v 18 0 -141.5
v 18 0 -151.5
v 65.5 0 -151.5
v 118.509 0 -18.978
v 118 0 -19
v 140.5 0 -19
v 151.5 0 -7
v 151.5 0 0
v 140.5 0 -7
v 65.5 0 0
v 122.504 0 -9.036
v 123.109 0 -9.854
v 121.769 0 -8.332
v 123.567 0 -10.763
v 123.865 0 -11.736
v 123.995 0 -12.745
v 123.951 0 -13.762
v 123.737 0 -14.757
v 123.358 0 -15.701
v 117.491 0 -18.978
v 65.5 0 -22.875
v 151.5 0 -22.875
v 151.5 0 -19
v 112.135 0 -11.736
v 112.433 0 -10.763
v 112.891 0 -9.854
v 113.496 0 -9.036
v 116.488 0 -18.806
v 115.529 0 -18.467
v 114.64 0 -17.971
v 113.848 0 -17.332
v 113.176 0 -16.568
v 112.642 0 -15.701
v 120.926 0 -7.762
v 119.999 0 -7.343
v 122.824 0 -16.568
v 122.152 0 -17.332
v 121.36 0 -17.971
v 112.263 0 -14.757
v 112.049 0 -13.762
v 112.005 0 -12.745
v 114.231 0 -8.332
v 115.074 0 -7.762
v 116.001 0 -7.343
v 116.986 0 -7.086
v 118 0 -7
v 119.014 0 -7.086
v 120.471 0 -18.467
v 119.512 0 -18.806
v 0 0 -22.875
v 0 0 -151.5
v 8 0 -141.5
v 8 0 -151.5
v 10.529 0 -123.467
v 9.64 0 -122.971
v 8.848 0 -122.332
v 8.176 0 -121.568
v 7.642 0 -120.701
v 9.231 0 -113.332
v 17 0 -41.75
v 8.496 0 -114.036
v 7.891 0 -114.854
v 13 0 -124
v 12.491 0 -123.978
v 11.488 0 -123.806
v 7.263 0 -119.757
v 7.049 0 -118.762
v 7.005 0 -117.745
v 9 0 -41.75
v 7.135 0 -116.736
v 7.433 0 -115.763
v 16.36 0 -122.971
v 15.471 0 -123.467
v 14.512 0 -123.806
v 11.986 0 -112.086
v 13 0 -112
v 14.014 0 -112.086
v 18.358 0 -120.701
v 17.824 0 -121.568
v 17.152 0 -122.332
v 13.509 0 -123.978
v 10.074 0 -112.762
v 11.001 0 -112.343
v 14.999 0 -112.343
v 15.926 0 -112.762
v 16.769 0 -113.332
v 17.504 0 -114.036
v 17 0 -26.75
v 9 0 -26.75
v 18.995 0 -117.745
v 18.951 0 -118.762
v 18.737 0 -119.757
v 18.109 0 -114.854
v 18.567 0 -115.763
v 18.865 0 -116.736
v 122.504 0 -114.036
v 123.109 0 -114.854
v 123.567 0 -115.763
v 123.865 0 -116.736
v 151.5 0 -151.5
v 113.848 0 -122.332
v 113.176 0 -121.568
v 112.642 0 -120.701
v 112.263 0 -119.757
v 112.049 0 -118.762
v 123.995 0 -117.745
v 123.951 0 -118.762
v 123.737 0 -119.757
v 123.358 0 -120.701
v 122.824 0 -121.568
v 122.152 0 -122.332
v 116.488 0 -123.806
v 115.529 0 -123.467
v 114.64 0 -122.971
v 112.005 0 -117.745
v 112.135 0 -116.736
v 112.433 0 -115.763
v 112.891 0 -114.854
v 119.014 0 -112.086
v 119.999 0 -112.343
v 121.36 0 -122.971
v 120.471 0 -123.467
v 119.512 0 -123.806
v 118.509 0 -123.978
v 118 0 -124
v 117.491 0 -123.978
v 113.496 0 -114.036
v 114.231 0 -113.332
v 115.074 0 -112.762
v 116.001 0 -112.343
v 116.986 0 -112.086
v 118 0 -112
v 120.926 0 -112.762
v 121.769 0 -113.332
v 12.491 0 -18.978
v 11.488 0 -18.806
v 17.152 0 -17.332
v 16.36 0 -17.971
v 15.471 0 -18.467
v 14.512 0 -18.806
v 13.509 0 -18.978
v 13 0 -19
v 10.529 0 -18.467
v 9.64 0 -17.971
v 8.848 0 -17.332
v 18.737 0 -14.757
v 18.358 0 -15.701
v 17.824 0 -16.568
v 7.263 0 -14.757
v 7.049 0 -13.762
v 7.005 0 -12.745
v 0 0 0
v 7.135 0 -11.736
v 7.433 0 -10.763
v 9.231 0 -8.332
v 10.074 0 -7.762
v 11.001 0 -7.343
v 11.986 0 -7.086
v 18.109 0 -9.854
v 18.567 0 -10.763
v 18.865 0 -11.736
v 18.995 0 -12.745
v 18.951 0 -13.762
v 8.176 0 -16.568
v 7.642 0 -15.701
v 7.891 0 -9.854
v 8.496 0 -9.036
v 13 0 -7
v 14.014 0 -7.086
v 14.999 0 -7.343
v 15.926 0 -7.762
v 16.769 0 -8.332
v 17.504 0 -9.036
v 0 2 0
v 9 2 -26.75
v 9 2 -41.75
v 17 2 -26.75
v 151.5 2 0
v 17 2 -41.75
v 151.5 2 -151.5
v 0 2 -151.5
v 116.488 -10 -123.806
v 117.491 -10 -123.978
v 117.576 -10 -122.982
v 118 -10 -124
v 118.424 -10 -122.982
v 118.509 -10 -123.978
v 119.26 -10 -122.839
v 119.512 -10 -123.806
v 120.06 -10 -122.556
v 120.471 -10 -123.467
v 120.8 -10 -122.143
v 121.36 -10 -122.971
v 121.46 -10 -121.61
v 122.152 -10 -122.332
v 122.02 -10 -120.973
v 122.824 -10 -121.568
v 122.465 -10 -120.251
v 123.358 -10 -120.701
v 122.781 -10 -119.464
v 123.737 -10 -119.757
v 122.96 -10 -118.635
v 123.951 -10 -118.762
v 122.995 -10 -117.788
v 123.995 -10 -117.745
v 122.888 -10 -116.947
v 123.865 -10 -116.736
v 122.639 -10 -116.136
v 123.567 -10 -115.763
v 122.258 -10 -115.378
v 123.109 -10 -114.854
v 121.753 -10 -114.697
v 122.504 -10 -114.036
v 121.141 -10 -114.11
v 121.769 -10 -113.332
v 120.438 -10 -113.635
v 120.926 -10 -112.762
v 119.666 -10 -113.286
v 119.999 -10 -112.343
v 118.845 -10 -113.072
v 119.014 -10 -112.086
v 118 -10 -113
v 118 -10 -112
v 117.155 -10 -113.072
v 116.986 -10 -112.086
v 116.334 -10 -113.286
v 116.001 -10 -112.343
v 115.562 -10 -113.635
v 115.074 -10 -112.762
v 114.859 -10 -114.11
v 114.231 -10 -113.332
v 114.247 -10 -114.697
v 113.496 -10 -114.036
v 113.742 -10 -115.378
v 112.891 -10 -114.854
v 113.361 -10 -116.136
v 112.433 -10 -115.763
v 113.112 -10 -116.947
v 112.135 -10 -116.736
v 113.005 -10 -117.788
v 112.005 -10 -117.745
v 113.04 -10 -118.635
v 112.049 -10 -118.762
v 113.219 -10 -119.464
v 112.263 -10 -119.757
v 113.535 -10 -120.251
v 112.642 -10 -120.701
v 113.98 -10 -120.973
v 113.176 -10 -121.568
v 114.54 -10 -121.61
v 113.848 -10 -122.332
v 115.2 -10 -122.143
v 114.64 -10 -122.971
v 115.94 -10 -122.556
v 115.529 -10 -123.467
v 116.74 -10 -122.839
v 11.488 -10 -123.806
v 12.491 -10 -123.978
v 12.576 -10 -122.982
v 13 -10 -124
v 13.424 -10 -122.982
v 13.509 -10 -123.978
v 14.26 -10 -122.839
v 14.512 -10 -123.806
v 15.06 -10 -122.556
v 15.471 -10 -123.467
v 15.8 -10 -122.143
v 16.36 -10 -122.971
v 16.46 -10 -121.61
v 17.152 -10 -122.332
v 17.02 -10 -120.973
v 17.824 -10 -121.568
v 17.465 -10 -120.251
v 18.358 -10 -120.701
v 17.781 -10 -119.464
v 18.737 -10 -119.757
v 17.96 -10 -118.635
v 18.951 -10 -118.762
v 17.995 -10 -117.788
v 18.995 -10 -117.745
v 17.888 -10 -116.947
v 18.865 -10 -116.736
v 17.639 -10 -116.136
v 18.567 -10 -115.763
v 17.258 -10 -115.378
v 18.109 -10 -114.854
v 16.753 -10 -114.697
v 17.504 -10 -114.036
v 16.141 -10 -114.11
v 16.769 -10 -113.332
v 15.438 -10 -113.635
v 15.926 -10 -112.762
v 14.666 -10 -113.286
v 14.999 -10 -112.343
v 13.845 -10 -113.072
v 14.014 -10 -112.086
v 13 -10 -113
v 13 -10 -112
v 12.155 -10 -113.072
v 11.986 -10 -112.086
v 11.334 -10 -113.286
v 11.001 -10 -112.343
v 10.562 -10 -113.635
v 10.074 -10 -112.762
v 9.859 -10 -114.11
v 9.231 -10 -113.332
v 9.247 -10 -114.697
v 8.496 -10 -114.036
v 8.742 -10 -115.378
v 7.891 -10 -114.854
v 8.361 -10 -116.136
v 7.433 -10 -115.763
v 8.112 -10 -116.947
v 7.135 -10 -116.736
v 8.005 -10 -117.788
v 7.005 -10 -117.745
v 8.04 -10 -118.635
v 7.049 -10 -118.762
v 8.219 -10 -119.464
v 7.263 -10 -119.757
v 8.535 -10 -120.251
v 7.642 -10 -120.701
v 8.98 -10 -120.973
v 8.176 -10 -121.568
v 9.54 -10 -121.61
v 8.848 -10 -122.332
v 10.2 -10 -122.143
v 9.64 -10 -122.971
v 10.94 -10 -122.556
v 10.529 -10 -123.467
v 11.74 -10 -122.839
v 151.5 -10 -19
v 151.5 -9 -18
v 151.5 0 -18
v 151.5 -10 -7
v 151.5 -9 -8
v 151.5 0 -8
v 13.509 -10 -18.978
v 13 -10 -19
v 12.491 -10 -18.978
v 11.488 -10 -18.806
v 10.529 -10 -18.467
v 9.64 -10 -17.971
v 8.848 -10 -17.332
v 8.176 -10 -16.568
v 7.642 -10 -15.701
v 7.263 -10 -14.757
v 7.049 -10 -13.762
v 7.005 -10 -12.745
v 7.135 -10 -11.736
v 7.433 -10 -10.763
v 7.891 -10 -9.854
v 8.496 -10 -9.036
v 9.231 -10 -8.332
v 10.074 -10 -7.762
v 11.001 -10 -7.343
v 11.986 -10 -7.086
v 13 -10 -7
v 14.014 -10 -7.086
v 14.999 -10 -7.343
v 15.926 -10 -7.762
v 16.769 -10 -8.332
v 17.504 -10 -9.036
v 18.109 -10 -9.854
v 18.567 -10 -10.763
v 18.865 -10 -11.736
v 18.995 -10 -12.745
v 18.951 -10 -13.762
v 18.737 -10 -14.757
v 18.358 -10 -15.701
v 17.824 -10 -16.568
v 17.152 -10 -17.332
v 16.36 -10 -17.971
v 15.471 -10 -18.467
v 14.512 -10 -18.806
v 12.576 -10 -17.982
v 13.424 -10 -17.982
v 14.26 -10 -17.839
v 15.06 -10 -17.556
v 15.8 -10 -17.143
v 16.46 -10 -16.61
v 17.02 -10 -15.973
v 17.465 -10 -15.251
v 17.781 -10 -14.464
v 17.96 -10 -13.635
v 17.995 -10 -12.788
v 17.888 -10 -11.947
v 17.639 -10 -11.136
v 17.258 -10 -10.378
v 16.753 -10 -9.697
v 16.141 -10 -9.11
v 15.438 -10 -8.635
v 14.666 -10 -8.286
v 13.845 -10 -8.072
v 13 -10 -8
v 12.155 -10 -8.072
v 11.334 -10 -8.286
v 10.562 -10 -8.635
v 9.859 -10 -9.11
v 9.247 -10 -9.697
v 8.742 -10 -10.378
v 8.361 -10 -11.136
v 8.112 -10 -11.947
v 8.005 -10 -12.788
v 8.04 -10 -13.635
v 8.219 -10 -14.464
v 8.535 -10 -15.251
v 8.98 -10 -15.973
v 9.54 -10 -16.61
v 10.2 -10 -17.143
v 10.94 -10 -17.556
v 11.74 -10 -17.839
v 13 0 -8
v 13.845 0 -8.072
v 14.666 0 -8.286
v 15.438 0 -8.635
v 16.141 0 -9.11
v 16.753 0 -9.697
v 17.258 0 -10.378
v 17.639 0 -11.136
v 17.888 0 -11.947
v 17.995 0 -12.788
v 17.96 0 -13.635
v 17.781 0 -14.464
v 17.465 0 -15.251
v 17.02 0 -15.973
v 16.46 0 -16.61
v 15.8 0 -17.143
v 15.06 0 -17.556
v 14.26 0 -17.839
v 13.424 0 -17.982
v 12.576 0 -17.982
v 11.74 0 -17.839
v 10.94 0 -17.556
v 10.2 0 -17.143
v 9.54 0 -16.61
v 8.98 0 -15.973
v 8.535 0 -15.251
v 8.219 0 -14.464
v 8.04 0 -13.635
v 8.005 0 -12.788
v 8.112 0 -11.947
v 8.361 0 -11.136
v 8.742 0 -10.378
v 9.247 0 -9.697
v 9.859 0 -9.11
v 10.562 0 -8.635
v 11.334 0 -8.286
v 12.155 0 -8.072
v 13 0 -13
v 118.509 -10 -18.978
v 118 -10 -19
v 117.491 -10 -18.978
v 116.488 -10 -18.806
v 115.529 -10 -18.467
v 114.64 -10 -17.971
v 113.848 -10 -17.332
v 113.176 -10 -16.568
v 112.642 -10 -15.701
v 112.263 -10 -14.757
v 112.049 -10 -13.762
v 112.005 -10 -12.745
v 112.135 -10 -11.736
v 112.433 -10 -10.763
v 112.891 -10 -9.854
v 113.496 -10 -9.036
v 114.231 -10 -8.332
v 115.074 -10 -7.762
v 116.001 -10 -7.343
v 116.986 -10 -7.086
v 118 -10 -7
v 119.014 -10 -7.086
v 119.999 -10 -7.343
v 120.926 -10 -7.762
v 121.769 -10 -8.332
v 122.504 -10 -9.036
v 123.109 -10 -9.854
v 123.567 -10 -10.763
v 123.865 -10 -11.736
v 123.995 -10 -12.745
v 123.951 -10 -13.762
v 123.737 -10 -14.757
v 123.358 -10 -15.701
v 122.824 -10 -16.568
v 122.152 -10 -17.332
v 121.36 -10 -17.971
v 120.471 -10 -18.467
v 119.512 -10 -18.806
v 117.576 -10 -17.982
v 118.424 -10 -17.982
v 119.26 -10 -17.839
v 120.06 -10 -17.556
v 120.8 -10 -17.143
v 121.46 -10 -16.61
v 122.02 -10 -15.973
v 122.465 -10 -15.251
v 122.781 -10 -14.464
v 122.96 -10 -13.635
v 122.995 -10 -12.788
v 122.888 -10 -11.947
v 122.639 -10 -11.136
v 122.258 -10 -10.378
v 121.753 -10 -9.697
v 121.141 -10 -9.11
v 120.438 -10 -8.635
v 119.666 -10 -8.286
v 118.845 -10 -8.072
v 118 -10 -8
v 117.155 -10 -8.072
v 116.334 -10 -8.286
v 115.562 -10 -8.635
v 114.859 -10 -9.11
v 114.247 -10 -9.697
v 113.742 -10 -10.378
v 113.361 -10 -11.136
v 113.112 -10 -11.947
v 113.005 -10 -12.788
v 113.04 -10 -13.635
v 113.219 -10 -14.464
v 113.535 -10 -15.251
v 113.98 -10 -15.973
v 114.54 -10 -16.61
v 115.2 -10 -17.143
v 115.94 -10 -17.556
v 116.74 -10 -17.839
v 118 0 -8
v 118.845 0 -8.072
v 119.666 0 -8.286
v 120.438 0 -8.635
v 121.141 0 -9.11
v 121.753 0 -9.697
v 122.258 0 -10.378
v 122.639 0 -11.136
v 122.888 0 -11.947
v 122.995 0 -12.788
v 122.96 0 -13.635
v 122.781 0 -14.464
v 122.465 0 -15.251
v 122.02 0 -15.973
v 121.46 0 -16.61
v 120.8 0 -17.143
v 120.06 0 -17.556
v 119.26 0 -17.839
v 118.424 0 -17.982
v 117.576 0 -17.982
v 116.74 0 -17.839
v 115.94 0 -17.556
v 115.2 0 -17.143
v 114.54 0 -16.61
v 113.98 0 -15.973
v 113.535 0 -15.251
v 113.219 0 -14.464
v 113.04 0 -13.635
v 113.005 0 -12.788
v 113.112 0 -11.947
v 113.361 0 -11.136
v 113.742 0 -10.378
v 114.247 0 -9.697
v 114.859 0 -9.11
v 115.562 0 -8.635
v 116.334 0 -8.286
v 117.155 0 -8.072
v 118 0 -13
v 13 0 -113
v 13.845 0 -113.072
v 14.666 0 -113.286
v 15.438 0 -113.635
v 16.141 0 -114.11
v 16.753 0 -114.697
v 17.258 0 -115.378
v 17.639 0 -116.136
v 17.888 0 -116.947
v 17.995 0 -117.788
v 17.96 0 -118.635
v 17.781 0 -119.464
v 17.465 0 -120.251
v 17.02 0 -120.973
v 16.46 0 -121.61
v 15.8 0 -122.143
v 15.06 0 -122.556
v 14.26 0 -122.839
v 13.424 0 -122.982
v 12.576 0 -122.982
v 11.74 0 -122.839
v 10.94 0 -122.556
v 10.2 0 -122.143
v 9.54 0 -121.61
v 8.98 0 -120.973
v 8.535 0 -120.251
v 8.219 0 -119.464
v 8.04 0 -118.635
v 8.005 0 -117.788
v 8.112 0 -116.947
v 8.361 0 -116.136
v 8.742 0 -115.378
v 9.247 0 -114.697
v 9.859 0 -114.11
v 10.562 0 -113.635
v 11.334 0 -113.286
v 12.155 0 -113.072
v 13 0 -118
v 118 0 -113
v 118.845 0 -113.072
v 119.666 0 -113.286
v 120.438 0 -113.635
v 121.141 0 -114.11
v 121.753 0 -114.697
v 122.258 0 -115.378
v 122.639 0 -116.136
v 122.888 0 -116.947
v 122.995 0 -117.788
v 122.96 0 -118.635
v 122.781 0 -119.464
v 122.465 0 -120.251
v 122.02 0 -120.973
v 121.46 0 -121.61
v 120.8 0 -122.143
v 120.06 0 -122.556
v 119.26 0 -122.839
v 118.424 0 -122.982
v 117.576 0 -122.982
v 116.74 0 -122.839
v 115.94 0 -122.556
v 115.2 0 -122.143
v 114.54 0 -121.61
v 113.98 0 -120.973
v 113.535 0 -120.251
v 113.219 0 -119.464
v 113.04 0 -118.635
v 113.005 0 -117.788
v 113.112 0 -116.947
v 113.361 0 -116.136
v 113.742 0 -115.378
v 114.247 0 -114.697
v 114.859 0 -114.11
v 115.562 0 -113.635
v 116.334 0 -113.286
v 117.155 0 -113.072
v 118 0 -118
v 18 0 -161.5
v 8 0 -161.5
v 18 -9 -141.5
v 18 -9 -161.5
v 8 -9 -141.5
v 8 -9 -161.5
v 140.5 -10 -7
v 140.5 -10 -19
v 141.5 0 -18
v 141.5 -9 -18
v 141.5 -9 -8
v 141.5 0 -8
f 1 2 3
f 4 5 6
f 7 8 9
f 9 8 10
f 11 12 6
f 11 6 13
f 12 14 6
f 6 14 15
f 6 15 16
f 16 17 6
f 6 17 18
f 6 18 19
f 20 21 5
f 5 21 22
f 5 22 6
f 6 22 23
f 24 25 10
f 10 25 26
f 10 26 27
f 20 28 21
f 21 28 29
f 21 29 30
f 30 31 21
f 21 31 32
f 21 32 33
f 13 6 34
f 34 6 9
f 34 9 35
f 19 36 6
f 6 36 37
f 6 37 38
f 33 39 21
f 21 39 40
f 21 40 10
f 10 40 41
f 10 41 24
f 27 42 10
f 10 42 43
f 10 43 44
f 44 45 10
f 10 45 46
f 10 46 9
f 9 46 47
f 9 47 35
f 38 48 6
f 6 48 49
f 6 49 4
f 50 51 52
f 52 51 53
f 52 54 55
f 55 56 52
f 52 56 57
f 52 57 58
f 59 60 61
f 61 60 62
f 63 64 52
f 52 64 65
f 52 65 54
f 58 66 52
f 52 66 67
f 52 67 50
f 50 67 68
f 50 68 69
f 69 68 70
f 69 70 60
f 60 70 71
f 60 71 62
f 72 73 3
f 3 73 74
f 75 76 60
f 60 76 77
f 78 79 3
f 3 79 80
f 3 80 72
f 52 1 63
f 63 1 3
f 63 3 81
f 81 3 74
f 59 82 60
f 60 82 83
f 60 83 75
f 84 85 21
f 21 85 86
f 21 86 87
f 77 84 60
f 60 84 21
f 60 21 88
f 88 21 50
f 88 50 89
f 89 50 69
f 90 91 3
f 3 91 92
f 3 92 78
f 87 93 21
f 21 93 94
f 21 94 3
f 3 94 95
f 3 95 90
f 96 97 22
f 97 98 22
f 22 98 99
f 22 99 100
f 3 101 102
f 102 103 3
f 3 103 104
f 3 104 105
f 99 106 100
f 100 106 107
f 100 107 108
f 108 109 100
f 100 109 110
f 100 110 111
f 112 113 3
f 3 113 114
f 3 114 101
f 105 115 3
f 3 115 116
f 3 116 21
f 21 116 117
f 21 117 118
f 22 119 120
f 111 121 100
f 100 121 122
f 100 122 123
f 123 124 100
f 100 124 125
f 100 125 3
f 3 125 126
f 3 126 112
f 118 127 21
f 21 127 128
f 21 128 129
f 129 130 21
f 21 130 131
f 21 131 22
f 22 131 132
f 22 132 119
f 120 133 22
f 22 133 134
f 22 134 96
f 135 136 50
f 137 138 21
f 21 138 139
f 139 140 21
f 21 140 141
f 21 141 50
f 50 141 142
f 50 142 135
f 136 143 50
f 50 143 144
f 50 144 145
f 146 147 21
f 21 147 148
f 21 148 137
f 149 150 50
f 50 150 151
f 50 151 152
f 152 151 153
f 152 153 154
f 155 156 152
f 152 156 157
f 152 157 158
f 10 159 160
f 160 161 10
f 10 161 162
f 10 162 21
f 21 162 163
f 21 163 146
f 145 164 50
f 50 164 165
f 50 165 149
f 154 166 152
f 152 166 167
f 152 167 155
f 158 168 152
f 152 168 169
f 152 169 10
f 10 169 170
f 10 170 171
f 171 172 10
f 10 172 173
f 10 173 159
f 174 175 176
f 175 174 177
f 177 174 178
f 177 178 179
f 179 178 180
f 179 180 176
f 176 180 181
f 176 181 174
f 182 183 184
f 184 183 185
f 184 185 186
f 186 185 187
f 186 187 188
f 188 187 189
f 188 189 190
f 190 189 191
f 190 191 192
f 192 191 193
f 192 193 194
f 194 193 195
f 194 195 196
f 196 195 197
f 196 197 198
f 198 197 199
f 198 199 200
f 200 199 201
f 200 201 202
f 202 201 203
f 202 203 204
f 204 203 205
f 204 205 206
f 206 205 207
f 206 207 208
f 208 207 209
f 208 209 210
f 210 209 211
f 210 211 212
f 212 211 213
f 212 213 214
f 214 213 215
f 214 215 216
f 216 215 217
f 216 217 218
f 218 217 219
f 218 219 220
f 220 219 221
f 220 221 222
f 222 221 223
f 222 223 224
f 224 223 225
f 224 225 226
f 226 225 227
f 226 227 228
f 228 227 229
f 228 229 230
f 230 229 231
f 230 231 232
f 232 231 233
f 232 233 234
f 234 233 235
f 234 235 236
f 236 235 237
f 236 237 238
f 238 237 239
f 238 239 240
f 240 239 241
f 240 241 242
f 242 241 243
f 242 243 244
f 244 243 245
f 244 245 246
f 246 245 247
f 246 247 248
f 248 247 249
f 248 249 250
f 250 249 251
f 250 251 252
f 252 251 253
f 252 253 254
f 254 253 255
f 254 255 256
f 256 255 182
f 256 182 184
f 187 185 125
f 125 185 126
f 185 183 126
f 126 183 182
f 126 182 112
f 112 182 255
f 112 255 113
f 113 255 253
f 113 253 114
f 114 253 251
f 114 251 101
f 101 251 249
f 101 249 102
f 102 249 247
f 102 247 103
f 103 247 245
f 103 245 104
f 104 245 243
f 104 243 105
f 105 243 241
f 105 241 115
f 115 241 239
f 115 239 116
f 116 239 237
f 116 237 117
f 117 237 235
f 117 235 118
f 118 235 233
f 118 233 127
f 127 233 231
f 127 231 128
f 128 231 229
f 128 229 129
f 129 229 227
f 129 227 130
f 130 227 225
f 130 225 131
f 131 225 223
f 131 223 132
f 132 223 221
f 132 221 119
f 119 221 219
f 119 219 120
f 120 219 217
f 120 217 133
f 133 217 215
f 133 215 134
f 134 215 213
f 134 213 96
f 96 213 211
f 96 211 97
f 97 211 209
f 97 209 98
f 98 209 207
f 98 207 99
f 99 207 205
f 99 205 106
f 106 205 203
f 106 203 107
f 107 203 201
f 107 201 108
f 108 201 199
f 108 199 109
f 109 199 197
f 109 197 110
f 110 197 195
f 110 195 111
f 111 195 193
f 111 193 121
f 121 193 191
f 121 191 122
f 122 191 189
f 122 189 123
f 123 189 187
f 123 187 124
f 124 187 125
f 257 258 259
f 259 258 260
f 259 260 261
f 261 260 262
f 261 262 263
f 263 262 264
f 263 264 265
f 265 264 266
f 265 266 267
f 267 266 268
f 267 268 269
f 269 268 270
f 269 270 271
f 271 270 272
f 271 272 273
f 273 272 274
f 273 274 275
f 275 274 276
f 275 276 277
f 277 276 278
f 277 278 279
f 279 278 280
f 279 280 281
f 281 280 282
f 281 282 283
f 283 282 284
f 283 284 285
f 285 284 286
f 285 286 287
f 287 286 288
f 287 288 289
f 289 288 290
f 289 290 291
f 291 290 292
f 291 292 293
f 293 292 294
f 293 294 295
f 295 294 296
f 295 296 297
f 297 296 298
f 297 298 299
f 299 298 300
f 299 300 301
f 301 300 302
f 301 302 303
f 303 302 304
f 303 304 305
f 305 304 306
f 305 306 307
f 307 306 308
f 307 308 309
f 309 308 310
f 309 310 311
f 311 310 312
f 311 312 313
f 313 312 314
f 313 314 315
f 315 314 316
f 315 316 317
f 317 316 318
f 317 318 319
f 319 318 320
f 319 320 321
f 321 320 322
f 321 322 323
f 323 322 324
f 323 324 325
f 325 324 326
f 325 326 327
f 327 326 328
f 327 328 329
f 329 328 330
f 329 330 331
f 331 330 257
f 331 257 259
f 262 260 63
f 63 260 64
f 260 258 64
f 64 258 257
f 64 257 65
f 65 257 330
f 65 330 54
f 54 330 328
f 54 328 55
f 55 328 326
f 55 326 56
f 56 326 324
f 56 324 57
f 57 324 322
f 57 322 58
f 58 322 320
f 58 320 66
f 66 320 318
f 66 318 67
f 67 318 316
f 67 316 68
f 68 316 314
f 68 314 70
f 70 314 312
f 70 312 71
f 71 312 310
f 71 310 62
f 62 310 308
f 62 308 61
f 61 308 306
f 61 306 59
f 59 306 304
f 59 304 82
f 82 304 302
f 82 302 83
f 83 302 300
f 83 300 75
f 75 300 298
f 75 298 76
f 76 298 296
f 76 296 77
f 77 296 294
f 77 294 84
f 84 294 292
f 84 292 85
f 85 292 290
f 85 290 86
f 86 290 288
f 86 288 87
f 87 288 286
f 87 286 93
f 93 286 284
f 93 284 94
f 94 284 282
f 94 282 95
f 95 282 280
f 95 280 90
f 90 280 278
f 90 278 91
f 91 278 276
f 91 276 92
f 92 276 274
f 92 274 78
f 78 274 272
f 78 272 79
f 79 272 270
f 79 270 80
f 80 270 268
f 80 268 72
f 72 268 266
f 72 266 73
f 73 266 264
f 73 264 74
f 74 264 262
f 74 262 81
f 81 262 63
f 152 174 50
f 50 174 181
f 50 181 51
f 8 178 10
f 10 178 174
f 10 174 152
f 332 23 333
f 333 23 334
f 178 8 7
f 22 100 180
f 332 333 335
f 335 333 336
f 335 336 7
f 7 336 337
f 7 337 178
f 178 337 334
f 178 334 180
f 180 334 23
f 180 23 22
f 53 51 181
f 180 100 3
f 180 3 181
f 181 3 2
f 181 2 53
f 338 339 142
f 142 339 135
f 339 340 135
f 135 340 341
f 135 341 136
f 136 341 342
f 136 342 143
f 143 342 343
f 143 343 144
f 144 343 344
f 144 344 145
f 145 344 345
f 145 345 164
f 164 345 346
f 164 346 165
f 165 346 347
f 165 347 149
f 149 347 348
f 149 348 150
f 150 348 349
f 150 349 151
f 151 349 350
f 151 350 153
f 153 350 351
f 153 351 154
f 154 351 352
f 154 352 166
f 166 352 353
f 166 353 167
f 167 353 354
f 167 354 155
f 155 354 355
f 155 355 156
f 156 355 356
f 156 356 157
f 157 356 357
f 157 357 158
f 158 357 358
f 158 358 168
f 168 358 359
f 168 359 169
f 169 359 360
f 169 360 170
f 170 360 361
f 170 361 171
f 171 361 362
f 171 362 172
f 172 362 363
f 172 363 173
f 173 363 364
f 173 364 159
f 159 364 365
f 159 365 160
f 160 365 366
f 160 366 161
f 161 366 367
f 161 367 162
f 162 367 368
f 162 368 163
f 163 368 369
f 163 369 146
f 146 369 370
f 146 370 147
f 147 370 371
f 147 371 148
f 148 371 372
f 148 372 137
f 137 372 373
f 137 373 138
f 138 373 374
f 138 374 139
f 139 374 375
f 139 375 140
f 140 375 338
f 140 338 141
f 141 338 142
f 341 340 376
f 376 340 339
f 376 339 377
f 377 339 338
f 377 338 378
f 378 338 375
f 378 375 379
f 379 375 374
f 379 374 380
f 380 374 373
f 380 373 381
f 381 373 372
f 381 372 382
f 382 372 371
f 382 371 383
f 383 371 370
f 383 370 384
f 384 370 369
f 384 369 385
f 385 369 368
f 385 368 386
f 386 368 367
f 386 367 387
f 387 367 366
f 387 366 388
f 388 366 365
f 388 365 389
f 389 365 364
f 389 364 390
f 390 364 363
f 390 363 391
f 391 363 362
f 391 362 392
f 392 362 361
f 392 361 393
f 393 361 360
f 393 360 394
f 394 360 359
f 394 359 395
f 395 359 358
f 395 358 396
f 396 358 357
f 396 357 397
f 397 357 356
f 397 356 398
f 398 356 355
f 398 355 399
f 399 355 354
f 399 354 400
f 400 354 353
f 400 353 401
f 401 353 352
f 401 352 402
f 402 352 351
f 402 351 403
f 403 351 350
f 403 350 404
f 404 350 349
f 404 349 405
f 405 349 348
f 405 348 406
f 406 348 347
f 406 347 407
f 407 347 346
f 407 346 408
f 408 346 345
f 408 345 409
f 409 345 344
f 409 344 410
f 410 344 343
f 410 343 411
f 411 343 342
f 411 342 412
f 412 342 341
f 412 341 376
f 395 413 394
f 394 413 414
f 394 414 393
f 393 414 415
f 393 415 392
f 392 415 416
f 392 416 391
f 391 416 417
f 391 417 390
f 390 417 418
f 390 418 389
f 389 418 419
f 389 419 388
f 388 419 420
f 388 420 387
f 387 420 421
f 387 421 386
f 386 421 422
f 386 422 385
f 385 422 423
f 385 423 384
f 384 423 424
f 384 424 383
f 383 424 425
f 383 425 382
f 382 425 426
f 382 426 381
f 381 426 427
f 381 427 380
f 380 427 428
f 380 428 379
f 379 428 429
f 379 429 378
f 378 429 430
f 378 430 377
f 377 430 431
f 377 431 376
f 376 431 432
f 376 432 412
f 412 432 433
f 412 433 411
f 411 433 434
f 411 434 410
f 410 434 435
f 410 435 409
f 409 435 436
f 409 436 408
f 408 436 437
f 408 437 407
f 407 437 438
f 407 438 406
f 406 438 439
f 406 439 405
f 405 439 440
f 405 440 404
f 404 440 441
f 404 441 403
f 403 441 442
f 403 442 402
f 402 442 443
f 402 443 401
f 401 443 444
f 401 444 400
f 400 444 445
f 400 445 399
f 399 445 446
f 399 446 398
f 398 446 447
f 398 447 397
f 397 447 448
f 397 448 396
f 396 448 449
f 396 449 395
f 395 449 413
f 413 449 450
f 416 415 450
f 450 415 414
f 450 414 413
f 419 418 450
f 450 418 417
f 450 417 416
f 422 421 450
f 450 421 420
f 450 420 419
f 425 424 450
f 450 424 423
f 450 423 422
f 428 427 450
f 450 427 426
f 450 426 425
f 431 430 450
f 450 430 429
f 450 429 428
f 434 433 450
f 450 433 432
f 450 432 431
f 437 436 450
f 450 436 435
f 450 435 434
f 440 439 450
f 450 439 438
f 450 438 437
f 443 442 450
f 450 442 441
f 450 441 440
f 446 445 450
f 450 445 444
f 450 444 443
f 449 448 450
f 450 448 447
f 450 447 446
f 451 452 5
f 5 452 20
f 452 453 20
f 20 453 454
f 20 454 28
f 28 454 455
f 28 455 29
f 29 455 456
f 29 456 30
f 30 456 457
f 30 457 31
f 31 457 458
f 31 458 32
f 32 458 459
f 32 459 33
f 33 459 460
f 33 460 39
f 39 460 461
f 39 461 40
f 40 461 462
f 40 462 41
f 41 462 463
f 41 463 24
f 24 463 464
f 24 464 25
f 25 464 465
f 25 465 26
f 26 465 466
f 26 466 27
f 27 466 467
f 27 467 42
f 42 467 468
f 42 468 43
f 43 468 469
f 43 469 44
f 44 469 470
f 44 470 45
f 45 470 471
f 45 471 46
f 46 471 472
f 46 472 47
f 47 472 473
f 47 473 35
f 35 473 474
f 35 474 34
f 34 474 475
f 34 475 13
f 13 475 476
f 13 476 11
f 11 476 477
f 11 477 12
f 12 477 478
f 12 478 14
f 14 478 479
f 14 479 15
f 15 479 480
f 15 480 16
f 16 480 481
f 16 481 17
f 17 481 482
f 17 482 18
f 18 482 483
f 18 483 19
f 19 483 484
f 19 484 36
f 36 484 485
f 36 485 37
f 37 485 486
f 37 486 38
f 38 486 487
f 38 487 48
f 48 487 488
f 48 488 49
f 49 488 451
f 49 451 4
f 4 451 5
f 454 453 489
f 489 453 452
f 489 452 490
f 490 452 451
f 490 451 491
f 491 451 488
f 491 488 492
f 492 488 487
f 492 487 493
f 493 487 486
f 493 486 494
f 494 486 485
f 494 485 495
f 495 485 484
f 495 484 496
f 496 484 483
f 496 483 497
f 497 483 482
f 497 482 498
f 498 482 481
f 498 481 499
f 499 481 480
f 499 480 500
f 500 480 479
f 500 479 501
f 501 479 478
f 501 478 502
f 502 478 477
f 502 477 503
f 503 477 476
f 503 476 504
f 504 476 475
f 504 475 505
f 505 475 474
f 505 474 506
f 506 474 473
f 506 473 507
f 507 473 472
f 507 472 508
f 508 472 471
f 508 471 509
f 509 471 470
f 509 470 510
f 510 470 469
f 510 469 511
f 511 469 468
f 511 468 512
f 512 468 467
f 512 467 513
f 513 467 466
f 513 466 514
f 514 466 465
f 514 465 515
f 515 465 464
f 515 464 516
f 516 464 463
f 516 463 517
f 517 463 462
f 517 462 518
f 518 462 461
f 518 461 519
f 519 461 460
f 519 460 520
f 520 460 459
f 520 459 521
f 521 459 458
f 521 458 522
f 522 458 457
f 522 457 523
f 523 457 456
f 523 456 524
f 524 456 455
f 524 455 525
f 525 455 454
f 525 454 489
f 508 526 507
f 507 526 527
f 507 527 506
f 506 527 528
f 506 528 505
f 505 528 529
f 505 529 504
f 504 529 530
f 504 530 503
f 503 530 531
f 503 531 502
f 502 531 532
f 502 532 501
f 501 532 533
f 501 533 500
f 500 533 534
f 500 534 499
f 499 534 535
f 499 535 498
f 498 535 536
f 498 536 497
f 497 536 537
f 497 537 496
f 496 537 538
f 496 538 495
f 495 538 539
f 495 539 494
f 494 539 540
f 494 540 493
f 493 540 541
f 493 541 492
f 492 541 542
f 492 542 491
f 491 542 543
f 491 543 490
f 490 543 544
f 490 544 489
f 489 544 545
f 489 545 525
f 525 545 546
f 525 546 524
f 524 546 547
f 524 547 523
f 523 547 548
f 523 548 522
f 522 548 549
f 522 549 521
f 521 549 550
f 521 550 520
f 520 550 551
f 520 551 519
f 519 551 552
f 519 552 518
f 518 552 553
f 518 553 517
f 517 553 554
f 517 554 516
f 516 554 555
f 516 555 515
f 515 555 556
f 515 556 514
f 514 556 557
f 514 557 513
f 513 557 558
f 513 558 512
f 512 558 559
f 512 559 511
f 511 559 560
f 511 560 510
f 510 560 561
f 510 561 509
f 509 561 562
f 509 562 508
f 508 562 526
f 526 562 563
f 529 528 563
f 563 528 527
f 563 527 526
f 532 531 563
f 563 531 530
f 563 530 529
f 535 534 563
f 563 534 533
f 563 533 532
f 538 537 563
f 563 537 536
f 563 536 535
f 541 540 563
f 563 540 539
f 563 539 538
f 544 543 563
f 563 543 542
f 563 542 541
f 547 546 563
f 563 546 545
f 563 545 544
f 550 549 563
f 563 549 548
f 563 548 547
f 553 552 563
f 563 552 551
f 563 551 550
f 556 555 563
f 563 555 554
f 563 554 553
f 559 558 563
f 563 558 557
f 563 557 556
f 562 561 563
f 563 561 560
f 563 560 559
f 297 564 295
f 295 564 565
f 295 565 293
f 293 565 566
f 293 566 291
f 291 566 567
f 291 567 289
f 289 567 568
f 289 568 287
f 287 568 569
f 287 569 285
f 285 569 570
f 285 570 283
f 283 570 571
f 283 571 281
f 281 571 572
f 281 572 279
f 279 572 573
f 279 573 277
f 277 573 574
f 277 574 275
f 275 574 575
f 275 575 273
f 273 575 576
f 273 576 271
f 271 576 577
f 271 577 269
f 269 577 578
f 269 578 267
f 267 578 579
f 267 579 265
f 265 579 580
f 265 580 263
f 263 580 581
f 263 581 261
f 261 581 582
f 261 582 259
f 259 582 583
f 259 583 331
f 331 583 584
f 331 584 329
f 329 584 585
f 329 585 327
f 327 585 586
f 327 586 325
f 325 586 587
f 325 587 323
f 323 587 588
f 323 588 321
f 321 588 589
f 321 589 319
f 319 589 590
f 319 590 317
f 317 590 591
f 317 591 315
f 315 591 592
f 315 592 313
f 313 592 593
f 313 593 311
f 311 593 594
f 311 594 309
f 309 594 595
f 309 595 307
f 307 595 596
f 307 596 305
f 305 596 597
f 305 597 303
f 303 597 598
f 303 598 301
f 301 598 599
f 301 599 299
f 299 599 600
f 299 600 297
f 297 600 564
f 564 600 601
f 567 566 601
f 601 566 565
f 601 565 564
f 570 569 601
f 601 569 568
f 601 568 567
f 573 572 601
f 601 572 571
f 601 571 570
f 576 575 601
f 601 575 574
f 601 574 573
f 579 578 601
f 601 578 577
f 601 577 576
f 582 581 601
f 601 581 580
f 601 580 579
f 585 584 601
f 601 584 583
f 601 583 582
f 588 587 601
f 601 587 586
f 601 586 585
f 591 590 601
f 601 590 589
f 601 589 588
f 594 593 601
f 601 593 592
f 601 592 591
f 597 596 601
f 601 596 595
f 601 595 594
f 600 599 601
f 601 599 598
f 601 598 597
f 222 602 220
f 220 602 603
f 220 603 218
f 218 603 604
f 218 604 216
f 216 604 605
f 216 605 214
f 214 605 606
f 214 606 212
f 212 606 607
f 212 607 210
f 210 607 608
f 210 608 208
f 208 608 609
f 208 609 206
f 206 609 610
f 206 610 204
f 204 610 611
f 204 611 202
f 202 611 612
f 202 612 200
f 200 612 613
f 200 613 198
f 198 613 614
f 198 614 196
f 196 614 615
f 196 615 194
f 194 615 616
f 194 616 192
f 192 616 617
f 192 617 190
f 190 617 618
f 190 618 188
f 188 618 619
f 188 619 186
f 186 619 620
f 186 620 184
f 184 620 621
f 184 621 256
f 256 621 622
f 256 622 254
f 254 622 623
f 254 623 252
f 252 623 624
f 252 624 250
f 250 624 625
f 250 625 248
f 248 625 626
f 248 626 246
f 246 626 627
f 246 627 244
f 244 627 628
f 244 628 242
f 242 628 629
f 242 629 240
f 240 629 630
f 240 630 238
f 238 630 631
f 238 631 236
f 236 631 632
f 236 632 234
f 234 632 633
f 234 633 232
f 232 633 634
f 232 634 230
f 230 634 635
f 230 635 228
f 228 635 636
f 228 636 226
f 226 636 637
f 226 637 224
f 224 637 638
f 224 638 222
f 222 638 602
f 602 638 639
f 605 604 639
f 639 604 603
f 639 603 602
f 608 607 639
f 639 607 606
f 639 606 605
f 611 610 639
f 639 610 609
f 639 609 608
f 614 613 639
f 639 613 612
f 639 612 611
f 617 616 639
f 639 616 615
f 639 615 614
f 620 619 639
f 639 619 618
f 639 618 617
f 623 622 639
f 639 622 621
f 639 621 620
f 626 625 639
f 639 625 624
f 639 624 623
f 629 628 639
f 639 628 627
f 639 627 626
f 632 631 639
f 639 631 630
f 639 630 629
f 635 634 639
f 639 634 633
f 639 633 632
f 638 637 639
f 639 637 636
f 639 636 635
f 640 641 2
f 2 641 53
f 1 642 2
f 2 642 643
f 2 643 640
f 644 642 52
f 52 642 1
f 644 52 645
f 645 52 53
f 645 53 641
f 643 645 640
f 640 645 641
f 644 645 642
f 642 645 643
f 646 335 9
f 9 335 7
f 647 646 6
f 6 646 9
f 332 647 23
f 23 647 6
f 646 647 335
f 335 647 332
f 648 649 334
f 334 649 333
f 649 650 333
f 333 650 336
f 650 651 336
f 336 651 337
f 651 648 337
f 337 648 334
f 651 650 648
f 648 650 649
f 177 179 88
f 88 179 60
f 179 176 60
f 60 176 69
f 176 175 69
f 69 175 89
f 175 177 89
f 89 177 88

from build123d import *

# Parameters (mm, degrees)
SKETCH1_W            = 151.5
SKETCH1_H            = 151.5
BOSS_EXTRUDE1_DEPTH  = 2
SKETCH8_R            = 6
BOSS_EXTRUDE3_DEPTH  = 10
SKETCH9_R            = 5
CUT_EXTRUDE5_DEPTH   = 10
LPATTERN3_COUNT      = 2
LPATTERN3_PITCH      = 105
LPATTERN3_COUNT_DIR2 = 2
LPATTERN3_PITCH_DIR2 = 105
SKETCH10_W           = 10
SKETCH10_H           = 20
BOSS_EXTRUDE4_DEPTH  = 9
SKETCH11_W           = 11
SKETCH11_H           = 12
BOSS_EXTRUDE5_DEPTH  = 10
SKETCH13_W           = 10
SKETCH13_H           = 9
CUT_EXTRUDE6_DEPTH   = 10
SKETCH15_W           = 8
SKETCH15_H           = 15
CUT_EXTRUDE7_DEPTH   = 2


with BuildPart() as part:
    # Sketch1 → Boss-Extrude1 (new body)
    with BuildSketch(Plane(origin=(0, 0, 0), x_dir=(1, 0, 0), z_dir=(0, 1, 0))):
        with Locations((75.75, 75.75)):
            Rectangle(SKETCH1_W, SKETCH1_H)
    extrude(amount=BOSS_EXTRUDE1_DEPTH)

    # Sketch8 → Boss-Extrude3 (add)
    with BuildSketch(Plane(origin=(0, 0, 0), x_dir=(-1, 0, 0), z_dir=(0, -1, 0))):
        with Locations((-13, 13)):
            Circle(SKETCH8_R)
    boss_extrude3 = extrude(amount=BOSS_EXTRUDE3_DEPTH)

    # Sketch9 → Cut-Extrude5 (cut)
    with BuildSketch(Plane(origin=(0, 0, 0), x_dir=(1, 0, 0), z_dir=(0, 1, 0))):
        with Locations((13, 13)):
            Circle(SKETCH9_R)
    cut_extrude5 = extrude(amount=-CUT_EXTRUDE5_DEPTH, mode=Mode.SUBTRACT)

    # LPattern3: Boss-Extrude3, Cut-Extrude5 2 × 2
    with Locations(*[(i * LPATTERN3_PITCH, 0, -j * LPATTERN3_PITCH_DIR2) for i in range(LPATTERN3_COUNT) for j in range(LPATTERN3_COUNT_DIR2) if (i, j) != (0, 0)]):
        add(boss_extrude3)
        add(cut_extrude5, mode=Mode.SUBTRACT)

    # Sketch10 → Boss-Extrude4 (add)
    with BuildSketch(Plane(origin=(0, 0, 0), x_dir=(1, 0, 0), z_dir=(0, 1, 0))):
        with Locations((13, 151.5)):
            Rectangle(SKETCH10_W, SKETCH10_H)
    extrude(amount=-BOSS_EXTRUDE4_DEPTH)

    # Sketch11 → Boss-Extrude5 (add)
    with BuildSketch(Plane(origin=(0, 0, 0), x_dir=(-1, 0, 0), z_dir=(0, -1, 0))):
        with Locations((-146, 13)):
            Rectangle(SKETCH11_W, SKETCH11_H)
    extrude(amount=BOSS_EXTRUDE5_DEPTH)

    # Sketch13 → Cut-Extrude6 (cut)
    with BuildSketch(Plane(origin=(151.5, 0, 0), x_dir=(0, 0, -1), z_dir=(1, 0, 0))):
        with Locations((13, -4.5)):
            Rectangle(SKETCH13_W, SKETCH13_H)
    extrude(amount=-CUT_EXTRUDE6_DEPTH, mode=Mode.SUBTRACT)

    # Sketch15 → Cut-Extrude7 (cut)
    with BuildSketch(Plane(origin=(0, 0, 0), x_dir=(1, 0, 0), z_dir=(0, 1, 0))):
        with Locations((13, 34.25)):
            Rectangle(SKETCH15_W, SKETCH15_H)
    extrude(amount=CUT_EXTRUDE7_DEPTH, mode=Mode.SUBTRACT)


solid = part.part
